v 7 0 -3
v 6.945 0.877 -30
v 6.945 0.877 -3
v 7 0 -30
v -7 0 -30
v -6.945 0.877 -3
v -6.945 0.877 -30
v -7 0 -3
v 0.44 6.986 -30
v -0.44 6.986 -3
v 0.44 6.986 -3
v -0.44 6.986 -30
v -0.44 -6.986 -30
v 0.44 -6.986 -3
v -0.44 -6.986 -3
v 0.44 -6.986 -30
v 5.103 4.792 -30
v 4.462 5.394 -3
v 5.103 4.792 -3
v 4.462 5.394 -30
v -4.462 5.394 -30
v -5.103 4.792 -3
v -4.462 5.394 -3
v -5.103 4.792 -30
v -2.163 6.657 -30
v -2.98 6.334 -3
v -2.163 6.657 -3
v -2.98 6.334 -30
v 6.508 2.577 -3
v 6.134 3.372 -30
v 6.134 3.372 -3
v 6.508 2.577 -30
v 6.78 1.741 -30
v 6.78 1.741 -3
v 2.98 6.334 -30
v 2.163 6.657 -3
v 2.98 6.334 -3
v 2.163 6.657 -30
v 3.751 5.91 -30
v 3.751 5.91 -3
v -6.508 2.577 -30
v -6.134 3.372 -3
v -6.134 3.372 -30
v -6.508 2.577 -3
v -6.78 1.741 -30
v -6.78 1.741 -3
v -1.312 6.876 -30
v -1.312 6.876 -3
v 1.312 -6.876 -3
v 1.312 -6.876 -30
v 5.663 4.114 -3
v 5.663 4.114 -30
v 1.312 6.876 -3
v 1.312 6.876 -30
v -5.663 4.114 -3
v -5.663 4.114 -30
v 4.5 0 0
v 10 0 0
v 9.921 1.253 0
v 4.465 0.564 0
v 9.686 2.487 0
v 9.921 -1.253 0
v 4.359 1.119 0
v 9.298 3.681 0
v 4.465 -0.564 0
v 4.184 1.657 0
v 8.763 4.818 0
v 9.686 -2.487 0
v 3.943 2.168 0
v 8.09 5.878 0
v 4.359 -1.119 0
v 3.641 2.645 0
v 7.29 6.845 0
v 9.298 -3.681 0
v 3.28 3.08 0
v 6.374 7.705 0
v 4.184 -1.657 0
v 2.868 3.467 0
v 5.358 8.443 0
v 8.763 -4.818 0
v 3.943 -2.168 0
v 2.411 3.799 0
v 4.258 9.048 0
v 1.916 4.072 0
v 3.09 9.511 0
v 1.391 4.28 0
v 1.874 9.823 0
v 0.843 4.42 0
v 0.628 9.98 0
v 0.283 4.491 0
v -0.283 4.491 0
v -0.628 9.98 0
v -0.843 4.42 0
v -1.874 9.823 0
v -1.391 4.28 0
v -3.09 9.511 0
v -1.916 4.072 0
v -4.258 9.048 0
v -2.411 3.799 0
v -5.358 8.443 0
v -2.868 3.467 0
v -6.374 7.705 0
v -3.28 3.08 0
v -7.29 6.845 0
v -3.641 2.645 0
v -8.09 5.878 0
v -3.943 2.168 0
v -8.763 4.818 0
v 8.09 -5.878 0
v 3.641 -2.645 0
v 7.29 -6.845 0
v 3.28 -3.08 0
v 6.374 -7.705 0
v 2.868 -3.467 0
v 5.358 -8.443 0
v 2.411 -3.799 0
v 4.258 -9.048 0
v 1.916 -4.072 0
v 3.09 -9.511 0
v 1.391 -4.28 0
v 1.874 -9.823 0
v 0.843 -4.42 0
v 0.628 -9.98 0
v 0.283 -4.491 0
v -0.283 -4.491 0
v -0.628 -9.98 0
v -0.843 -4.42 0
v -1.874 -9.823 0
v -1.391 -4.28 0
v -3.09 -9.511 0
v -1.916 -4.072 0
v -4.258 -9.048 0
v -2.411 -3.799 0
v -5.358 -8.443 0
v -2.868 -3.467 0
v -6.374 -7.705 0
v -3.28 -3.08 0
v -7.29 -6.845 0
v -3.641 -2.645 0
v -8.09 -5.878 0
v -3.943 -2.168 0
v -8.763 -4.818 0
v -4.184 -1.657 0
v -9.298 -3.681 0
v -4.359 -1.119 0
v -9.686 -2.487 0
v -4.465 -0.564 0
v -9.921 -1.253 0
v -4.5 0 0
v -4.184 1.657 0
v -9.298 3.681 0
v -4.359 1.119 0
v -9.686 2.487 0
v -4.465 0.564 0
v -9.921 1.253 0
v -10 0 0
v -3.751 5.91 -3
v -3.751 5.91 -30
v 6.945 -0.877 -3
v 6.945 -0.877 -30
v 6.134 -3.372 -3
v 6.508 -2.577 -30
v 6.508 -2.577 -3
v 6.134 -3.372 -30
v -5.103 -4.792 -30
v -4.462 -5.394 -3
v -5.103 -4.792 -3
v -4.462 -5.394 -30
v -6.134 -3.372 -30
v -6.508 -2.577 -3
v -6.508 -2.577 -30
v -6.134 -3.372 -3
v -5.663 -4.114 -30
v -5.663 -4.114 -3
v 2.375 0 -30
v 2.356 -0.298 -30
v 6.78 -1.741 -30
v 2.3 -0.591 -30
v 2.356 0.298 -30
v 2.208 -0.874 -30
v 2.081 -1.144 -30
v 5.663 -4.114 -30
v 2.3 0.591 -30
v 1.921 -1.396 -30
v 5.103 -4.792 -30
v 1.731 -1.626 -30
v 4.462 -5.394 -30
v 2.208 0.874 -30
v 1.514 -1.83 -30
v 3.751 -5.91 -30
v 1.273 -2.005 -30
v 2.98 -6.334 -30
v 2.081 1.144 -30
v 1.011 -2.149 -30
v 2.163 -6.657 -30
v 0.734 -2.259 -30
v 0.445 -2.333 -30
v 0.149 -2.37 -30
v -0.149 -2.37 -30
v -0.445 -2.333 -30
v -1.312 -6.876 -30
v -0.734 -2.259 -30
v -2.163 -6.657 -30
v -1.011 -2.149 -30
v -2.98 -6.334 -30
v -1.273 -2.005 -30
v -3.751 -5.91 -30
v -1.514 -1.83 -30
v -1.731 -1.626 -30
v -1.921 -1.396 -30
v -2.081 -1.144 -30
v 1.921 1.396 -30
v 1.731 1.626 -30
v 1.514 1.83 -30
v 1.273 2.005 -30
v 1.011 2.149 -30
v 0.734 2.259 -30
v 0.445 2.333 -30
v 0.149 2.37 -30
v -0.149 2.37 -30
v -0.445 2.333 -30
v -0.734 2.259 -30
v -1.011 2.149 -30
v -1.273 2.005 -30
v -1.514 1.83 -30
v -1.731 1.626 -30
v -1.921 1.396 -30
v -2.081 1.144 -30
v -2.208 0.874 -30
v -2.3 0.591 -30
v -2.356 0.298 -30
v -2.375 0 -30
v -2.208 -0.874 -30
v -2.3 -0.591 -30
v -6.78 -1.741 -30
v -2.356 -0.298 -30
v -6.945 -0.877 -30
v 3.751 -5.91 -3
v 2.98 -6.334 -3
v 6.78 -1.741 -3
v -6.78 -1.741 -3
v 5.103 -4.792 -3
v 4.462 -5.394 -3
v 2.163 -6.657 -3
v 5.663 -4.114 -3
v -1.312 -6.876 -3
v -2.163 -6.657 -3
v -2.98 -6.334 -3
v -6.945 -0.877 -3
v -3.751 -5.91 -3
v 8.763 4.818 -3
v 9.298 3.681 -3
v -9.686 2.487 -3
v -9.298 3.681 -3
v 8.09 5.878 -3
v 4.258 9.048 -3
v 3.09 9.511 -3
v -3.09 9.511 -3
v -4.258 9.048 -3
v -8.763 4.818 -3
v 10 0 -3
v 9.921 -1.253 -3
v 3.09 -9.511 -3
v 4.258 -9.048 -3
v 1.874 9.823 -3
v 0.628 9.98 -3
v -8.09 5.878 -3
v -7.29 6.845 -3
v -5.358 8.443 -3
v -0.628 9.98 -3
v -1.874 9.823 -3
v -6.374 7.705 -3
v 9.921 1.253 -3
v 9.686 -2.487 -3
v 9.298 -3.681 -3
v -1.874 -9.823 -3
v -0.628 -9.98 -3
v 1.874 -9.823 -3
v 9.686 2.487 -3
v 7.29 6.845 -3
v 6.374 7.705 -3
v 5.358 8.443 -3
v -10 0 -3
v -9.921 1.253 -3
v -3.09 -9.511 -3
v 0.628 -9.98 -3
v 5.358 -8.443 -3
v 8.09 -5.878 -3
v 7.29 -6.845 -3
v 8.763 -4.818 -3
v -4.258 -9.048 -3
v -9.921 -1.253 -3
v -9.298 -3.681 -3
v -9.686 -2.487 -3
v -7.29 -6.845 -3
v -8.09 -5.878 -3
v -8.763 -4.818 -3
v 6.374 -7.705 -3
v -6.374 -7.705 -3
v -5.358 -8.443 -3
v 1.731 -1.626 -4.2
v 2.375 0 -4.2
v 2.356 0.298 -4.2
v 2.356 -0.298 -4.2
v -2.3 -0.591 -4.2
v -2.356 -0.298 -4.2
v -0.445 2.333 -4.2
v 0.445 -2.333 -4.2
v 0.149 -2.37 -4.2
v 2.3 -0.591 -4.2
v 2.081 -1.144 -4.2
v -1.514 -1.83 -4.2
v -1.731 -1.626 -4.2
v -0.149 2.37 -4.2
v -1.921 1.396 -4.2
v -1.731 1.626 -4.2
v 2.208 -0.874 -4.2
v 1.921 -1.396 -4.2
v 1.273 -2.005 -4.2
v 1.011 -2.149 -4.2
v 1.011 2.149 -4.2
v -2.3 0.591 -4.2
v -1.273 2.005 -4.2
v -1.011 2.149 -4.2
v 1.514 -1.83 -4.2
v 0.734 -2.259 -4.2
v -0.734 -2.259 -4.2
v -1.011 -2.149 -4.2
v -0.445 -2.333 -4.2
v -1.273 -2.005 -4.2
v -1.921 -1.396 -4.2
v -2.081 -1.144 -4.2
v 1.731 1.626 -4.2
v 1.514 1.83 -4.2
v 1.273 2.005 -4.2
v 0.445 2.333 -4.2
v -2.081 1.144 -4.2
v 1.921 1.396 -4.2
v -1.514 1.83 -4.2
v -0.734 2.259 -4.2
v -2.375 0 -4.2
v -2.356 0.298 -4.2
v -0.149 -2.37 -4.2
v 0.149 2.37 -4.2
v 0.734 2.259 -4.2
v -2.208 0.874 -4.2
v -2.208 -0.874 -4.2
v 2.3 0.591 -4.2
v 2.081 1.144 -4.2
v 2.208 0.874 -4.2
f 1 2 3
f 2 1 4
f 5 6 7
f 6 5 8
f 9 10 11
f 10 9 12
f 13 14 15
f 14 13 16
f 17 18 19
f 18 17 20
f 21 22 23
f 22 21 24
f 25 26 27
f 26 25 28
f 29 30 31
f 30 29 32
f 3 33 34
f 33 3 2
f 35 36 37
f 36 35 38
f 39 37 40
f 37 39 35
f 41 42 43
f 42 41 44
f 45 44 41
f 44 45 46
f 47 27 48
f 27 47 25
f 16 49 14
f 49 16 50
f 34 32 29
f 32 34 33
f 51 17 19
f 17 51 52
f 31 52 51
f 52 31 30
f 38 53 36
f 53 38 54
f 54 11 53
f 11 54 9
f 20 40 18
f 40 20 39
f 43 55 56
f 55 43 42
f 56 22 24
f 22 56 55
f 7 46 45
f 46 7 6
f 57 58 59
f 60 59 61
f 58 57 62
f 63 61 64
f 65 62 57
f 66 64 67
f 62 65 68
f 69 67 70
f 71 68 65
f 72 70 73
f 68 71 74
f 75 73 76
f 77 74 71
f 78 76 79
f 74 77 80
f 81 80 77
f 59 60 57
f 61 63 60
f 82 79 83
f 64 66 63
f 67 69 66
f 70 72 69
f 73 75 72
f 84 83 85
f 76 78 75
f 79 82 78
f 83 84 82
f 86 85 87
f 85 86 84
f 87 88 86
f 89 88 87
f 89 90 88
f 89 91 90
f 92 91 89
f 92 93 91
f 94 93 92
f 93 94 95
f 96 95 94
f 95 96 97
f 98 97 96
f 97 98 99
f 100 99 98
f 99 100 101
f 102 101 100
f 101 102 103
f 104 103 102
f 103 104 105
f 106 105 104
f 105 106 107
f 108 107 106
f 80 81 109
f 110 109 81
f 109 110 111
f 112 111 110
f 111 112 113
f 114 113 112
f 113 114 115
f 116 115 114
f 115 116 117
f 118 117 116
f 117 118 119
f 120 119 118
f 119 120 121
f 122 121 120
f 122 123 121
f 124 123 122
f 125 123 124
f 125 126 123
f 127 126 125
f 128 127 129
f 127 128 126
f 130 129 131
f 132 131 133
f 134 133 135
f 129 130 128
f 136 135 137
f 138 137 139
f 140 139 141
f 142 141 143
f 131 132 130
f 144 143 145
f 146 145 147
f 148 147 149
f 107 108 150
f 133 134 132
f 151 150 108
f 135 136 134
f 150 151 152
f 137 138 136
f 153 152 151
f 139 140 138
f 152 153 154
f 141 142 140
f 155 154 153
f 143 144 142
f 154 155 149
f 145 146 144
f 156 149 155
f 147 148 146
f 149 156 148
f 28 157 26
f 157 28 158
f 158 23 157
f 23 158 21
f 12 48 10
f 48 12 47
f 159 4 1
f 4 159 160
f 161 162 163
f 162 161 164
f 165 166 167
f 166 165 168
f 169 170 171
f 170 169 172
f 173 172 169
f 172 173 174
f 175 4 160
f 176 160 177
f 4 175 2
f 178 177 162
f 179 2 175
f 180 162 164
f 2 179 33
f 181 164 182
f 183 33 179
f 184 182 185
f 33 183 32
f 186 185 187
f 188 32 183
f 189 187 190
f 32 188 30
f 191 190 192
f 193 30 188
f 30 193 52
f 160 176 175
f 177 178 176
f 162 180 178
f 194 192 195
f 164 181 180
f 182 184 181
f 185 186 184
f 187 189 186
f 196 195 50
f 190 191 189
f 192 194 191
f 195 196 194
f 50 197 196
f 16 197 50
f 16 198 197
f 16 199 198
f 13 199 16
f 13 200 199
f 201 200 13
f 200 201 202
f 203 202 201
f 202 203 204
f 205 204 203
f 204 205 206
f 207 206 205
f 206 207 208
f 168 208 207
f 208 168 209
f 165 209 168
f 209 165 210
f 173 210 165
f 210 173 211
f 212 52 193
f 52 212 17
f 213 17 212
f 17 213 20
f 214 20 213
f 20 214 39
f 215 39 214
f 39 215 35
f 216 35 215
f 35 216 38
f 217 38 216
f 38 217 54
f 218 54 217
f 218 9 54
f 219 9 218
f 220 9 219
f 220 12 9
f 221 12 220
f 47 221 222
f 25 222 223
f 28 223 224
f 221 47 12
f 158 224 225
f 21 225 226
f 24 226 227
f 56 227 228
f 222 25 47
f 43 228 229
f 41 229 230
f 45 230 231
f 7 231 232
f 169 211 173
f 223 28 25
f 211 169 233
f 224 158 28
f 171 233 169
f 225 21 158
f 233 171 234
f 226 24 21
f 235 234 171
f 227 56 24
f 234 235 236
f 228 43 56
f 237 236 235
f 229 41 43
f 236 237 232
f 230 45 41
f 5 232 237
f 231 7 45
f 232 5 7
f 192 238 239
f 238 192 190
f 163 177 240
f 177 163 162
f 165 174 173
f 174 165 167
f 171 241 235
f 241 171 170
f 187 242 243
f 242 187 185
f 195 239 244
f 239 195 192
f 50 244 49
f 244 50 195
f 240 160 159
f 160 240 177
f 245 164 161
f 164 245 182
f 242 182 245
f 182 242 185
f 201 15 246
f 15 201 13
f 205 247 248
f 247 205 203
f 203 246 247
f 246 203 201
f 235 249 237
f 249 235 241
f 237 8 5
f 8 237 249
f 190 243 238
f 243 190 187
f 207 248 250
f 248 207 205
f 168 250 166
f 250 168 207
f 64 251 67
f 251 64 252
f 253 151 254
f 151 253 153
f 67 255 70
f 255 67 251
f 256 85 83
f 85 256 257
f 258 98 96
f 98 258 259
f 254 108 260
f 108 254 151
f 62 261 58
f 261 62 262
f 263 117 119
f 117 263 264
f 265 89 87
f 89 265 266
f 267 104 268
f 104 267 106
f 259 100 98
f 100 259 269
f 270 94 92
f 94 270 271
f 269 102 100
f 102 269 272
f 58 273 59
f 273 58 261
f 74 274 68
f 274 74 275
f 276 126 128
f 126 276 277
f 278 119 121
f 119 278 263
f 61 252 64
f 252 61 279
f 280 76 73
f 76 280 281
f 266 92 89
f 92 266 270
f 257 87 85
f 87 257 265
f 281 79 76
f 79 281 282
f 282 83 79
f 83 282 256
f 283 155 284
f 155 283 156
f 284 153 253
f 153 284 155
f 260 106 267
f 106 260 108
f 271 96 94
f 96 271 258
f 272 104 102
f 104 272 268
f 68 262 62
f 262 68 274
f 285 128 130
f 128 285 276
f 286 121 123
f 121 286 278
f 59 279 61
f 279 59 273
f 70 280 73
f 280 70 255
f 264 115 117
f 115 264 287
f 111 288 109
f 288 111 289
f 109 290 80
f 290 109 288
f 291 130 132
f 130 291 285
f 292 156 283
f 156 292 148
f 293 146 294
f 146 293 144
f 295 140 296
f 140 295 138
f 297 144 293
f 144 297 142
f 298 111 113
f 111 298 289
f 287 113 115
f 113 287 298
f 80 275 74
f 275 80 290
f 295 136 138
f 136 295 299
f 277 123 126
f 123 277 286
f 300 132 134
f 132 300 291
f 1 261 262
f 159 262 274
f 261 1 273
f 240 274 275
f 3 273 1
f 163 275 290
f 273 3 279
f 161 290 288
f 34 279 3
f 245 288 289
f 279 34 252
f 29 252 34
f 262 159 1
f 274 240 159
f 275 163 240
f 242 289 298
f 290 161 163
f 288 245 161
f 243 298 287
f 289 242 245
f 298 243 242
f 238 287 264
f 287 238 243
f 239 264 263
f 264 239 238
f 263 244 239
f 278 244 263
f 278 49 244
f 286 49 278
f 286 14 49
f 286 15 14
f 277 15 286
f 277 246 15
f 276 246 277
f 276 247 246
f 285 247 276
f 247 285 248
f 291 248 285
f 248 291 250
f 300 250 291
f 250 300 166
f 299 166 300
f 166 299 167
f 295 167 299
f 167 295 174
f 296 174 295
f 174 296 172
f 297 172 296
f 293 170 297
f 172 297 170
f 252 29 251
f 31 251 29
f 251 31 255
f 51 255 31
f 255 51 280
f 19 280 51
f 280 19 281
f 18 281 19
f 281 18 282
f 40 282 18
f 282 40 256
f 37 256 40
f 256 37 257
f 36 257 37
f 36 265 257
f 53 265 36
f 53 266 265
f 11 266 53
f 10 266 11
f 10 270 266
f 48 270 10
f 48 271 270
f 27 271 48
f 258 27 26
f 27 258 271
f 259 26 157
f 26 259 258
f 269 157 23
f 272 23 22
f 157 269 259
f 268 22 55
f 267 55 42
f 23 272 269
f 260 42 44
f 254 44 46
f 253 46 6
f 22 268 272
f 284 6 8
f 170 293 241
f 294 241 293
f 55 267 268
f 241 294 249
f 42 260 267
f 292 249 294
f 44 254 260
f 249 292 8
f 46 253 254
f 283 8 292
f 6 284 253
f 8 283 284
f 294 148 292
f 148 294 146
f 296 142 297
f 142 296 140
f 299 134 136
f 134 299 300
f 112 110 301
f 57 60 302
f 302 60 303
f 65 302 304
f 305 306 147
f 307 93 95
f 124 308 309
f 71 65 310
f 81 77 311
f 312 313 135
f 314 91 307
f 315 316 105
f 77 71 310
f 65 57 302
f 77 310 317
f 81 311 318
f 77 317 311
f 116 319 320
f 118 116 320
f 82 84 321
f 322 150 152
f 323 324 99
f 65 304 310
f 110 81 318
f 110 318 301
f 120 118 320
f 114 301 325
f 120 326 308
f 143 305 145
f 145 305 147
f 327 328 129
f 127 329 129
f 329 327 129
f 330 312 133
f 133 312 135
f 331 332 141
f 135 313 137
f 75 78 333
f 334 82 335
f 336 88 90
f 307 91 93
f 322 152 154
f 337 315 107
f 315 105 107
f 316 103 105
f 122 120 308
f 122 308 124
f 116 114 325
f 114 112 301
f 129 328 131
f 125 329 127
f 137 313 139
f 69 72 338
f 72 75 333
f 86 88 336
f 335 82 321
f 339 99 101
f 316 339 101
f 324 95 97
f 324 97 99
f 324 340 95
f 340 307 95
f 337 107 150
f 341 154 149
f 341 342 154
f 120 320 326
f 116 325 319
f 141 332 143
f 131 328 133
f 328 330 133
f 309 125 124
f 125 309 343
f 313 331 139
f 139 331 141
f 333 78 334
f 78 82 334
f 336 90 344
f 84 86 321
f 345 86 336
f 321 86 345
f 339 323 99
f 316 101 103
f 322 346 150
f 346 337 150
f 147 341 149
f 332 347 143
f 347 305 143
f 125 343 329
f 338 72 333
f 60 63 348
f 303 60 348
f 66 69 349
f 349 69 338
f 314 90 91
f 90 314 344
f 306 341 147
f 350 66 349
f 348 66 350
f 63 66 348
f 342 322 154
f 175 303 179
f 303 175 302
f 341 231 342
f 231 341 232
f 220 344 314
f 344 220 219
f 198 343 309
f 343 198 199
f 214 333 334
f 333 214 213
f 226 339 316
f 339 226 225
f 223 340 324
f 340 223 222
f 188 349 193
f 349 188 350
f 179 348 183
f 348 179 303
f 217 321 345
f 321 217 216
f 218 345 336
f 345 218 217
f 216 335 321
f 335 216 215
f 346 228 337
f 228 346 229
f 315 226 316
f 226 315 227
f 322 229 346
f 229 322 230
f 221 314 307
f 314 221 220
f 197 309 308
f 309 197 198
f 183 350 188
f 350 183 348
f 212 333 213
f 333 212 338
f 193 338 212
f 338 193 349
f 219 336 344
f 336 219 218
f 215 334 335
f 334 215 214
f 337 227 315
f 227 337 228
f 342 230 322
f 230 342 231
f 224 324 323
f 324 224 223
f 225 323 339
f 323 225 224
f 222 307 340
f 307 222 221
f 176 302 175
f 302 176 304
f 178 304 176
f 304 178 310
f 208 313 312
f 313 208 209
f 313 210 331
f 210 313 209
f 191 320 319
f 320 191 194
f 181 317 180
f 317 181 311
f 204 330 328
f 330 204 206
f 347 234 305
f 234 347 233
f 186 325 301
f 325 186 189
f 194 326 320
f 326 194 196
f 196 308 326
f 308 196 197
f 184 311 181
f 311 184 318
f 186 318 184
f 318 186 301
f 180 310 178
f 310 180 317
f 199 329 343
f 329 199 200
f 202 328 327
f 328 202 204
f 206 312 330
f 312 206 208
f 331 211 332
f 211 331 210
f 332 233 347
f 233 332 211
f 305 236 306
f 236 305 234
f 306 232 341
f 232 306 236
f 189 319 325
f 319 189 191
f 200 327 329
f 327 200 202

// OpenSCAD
$fn = 50;


difference() {
	union() {
		translate(v = [0, 0, -30.0000000000]) {
			cylinder(h = 30, r = 7.0000000000);
		}
		translate(v = [0, 0, -3.0000000000]) {
			cylinder(h = 3, r = 10.0000000000);
		}
	}
	union() {
		translate(v = [0, 0, 0]) {
			rotate(a = [0, 0, 0]) {
				difference() {
					union() {
						#translate(v = [0, 0, -30.0000000000]) {
							cylinder(h = 30, r = 2.2500000000);
						}
						#translate(v = [0, 0, -4.2000000000]) {
							cylinder(h = 4.2000000000, r = 7.0000000000, r1 = 2.3750000000, r2 = 4.5000000000);
						}
						#translate(v = [0, 0, -30.0000000000]) {
							cylinder(h = 30, r = 2.3750000000);
						}
						#translate(v = [0, 0, -30.0000000000]) {
							cylinder(h = 30, r = 2.2500000000);
						}
					}
					union();
				}
			}
		}
	}
}
